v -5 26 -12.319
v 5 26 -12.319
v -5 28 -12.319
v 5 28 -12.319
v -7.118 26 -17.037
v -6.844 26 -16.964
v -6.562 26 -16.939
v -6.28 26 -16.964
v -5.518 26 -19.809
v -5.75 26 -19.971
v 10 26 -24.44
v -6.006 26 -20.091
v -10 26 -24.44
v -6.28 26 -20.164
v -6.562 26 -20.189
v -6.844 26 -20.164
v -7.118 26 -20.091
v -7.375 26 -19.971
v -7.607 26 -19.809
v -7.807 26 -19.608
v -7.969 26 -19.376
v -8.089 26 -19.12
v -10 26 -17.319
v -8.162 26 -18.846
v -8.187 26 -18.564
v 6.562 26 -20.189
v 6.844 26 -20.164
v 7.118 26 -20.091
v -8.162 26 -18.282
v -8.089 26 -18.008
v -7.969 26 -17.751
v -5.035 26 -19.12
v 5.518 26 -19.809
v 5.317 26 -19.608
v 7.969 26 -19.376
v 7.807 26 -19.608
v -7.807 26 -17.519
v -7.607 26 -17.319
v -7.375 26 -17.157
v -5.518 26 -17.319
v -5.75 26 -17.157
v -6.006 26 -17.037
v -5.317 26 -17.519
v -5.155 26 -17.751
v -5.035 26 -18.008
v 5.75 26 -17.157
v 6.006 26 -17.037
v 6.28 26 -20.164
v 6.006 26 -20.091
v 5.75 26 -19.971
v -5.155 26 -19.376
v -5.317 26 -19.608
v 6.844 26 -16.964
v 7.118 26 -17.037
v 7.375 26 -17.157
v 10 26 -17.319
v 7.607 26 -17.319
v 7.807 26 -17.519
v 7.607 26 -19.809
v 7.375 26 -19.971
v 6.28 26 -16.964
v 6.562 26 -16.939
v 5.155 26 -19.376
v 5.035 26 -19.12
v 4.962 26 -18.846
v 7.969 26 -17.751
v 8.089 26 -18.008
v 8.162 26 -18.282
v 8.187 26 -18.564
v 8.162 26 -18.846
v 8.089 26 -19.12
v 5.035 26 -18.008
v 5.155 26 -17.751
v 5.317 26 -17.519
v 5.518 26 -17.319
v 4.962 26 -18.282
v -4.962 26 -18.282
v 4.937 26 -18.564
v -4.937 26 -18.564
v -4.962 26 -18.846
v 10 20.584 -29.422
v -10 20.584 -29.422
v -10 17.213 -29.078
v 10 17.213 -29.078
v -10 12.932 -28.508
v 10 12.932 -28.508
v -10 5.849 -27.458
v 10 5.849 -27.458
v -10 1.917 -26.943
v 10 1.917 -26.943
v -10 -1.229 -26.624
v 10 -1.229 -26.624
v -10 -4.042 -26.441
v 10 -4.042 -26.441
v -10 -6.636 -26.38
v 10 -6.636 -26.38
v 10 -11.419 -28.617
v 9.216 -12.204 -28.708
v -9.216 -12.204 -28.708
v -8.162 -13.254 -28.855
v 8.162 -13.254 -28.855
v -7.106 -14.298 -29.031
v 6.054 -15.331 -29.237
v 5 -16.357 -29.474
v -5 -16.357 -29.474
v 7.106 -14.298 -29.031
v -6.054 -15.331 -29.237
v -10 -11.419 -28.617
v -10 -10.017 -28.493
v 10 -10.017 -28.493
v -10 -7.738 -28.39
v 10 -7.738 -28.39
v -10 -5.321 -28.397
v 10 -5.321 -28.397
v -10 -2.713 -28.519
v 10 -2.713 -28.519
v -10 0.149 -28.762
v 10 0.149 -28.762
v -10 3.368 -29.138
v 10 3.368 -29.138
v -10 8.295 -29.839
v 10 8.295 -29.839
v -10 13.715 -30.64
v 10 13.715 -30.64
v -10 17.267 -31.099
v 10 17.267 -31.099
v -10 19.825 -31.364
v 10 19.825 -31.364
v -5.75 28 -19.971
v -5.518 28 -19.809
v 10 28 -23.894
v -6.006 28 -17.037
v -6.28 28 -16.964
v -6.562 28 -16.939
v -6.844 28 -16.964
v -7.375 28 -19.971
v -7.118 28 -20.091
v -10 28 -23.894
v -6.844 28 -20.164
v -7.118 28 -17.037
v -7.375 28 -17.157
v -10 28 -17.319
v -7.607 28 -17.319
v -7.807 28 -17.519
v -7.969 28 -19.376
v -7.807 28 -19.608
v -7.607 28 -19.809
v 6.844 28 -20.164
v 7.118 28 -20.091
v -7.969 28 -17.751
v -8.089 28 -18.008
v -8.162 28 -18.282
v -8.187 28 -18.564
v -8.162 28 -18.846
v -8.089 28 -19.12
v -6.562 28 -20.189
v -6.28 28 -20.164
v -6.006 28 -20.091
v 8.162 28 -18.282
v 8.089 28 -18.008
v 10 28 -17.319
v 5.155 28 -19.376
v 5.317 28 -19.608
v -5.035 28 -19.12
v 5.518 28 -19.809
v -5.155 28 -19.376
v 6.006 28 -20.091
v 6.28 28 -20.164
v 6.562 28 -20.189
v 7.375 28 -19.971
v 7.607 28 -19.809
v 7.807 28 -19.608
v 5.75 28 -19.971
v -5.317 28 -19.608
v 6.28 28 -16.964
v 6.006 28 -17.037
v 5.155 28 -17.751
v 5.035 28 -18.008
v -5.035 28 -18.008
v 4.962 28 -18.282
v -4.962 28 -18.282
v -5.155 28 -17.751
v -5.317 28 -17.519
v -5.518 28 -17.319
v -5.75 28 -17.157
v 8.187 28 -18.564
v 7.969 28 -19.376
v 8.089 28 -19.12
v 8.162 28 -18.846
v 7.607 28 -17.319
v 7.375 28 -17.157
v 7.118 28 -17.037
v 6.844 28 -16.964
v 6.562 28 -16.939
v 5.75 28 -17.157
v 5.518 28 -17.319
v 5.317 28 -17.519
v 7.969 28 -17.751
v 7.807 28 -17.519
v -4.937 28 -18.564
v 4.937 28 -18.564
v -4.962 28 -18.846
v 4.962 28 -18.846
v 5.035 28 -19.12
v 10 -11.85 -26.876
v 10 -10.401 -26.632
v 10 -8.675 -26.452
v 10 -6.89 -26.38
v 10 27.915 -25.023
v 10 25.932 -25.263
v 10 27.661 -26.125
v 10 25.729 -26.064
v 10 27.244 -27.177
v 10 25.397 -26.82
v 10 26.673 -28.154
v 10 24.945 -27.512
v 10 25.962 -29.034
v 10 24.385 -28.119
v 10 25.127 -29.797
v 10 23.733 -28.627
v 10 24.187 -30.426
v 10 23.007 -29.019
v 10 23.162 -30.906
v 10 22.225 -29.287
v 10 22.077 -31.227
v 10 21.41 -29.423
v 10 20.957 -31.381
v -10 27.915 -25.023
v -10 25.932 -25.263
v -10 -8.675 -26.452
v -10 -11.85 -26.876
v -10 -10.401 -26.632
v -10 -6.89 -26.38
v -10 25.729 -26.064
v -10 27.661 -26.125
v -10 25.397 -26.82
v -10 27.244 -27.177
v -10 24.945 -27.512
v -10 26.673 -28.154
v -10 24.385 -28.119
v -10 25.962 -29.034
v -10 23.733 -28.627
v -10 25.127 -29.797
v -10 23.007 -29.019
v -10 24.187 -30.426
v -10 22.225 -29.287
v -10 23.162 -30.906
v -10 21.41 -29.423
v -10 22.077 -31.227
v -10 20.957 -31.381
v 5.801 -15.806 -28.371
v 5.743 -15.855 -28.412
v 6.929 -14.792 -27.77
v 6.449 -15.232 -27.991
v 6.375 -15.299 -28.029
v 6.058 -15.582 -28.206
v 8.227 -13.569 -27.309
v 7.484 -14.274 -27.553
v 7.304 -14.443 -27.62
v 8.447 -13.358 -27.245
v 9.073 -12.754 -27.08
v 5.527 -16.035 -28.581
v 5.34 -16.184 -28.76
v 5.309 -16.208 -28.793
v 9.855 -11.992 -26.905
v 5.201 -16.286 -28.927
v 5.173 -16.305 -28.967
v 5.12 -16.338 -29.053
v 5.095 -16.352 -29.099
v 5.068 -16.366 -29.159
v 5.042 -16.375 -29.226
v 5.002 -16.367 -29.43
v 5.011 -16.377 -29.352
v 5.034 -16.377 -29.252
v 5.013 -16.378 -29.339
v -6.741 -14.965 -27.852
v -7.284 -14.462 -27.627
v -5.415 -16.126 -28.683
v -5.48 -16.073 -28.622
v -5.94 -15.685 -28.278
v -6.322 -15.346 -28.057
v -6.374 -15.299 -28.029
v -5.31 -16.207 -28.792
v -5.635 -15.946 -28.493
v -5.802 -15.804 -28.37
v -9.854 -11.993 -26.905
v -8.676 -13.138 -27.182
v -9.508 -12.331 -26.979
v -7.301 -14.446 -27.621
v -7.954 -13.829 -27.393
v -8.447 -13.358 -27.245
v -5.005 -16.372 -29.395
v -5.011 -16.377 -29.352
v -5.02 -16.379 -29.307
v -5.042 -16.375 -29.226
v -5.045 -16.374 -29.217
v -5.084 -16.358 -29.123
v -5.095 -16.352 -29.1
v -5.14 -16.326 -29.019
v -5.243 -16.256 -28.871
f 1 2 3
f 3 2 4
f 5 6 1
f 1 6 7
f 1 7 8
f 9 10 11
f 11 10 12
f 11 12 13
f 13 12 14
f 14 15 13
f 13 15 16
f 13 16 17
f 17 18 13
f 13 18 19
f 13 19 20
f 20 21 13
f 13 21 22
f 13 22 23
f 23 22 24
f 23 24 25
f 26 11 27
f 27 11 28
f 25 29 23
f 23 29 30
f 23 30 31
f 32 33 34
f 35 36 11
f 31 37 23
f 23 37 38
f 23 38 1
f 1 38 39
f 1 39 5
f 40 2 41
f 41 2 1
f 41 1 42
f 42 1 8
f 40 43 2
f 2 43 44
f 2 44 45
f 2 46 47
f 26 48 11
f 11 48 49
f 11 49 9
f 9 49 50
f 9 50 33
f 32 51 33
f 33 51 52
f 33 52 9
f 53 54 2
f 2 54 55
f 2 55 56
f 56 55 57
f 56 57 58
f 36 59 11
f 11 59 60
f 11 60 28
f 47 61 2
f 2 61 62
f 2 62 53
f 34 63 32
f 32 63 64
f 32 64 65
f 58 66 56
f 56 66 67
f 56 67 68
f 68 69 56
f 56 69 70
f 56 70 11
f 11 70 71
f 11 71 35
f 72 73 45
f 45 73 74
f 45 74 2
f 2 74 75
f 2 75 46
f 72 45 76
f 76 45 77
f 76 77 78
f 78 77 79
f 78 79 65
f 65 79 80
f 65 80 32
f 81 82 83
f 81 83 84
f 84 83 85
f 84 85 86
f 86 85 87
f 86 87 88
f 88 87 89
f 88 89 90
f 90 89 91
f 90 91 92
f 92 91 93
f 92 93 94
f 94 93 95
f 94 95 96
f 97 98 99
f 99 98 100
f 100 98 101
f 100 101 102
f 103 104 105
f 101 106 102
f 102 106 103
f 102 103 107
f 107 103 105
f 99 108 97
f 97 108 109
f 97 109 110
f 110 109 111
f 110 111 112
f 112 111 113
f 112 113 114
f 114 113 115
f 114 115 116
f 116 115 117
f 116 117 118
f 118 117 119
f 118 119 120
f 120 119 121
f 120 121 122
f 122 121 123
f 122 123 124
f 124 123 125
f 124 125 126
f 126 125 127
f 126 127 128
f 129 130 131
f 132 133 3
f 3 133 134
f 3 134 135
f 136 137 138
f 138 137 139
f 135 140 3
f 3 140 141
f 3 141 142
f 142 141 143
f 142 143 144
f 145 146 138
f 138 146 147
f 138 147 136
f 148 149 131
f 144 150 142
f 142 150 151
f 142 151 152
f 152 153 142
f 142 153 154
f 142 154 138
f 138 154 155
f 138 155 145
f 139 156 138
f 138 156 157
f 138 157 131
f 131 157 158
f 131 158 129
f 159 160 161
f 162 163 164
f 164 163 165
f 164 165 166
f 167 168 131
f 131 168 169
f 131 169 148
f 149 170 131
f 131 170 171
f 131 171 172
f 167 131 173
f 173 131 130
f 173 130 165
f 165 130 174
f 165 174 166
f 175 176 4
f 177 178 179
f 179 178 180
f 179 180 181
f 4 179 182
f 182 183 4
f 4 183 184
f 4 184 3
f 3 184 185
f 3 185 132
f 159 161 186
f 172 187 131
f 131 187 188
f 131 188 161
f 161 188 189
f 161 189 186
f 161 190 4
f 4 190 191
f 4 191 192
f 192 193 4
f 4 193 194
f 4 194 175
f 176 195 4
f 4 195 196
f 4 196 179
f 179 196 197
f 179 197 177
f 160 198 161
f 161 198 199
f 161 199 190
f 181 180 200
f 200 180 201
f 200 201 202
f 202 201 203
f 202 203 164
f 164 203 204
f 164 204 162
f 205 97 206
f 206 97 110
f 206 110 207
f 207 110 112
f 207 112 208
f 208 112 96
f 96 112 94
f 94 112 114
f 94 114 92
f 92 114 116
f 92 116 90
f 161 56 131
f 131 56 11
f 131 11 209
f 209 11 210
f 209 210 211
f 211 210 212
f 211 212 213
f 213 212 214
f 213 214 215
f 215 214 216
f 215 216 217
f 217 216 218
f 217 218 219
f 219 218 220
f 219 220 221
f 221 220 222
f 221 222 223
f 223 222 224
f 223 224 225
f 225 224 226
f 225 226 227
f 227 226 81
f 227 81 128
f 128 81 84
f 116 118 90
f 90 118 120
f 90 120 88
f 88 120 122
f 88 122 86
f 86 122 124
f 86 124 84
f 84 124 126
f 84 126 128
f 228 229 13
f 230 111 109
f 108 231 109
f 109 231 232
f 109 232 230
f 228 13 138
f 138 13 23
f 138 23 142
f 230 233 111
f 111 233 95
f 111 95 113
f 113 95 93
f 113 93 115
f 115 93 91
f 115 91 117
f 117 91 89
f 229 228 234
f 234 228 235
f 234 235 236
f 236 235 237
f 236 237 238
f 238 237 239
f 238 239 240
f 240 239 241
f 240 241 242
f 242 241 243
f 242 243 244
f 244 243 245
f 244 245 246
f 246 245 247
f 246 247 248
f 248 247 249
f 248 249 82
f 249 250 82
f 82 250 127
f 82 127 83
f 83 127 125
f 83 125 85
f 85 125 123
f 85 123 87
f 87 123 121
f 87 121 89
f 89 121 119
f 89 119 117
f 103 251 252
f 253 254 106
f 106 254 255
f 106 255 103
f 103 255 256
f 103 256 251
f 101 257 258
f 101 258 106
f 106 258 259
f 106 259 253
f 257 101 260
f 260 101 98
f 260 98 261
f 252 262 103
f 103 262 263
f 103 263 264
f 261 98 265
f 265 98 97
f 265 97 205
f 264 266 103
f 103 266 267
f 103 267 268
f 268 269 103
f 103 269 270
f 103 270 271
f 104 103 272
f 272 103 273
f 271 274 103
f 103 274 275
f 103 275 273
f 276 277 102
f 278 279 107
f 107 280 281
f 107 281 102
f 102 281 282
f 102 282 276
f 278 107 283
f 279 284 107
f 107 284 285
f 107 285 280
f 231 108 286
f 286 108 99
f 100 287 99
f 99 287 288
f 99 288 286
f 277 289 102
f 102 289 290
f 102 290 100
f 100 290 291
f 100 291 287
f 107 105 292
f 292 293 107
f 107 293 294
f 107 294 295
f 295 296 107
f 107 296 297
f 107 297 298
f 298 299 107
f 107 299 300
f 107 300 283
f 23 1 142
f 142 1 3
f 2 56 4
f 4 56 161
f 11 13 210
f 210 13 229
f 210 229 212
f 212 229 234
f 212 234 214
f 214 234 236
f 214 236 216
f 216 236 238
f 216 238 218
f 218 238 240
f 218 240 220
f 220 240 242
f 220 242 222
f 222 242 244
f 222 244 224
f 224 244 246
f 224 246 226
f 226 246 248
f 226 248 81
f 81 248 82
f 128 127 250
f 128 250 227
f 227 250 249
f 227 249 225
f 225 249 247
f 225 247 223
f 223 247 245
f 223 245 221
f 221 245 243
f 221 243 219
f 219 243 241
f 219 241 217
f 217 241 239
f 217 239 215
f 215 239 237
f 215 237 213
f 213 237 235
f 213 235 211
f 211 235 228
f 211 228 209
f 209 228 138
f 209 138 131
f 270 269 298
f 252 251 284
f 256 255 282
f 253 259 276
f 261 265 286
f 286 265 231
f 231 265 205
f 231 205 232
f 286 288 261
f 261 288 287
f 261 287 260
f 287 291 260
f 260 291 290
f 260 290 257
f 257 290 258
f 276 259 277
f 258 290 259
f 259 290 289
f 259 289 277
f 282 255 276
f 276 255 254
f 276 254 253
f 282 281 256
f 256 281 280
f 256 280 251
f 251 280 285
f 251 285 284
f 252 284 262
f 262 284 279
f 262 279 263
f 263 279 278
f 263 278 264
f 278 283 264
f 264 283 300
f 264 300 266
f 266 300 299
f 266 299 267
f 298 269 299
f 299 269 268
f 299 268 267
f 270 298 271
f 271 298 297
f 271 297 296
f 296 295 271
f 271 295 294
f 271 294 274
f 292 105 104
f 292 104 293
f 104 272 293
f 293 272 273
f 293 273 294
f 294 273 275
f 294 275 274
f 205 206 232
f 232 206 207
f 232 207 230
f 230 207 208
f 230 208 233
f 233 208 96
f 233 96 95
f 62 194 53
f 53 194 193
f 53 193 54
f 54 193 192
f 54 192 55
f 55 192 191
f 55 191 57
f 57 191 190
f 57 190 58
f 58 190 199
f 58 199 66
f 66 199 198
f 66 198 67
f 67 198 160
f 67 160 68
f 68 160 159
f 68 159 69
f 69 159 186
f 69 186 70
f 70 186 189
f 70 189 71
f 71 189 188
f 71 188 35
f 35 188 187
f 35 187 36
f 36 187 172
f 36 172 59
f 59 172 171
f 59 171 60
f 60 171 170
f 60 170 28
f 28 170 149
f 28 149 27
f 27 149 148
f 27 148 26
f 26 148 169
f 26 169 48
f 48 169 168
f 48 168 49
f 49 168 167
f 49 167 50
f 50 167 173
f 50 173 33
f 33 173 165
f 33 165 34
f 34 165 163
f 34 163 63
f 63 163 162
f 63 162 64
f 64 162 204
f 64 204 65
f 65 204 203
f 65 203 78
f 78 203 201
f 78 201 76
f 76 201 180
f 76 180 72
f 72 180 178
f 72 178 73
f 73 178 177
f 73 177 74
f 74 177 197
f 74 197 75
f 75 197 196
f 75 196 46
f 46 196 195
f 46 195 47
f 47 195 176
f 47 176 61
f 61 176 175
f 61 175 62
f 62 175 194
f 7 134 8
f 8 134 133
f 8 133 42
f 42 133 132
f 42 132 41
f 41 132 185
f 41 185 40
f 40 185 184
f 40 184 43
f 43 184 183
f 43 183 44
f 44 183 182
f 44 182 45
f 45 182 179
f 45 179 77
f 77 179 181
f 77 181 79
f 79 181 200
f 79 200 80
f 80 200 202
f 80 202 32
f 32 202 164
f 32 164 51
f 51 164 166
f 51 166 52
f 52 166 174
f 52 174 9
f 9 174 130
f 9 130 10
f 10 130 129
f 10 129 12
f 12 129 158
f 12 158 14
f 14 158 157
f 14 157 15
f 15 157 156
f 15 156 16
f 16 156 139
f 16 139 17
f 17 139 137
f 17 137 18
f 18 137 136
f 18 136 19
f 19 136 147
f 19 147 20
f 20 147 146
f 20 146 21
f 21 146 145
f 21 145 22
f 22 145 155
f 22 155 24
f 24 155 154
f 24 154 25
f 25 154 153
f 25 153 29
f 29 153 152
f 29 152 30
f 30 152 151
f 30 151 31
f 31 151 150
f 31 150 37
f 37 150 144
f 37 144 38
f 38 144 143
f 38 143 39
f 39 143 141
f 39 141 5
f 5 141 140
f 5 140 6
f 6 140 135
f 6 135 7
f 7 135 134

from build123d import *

# Parameters (mm, degrees)
BOSS_EXTRUDE1_DEPTH = 10
CHAMFER1_SIZE       = 5
FILLET1_R           = 5
FILLET2_R           = 7.5
FILLET3_START       = -10
FILLET3_DEPTH       = 20
SKETCH3_R           = 1.625
CUT_EXTRUDE1_DEPTH  = 56.272426005


with BuildPart() as part:
    # Sketch1 → Boss-Extrude1 (new, symmetric)
    with BuildSketch(Plane(origin=(0, 0, 0), x_dir=(0, 0, -1), z_dir=(1, 0, 0))):
        with BuildLine():
            Line((12.319127455, 26), (29.663517642, 26))
            add(Edge.make_bspline(
                [(29.663517642, 26), (29.663517642, 11.740150088), (24.016025287, -2.621570193), (27.532919864, -16.837766109)],
                knots=[0, 0, 0, 0, 1, 1, 1, 1], degree=3))
            Line((27.532919864, -16.837766109), (29.474392891, -16.357471943))
            add(Edge.make_bspline(
                [(31.663517642, 26), (31.663517642, 24.15939465), (31.480704272, 20.46991898), (30.636833768, 13.199740185), (29.144724775, 4.252426008), (28.234715818, -4.480702376), (28.494687407, -11.300478686), (29.06335364, -14.695945165), (29.474392891, -16.357471943)],
                knots=[0, 0, 0, 0, 0.125, 0.25, 0.5, 0.75, 0.875, 1, 1, 1, 1], degree=3))
            Line((31.663517642, 26), (31.663517642, 28))
            Line((31.663517642, 28), (29.663517642, 28))
            Line((29.663517642, 28), (12.319127455, 28))
            Line((12.319127455, 28), (12.319127455, 26))
        make_face()
    extrude(amount=BOSS_EXTRUDE1_DEPTH, both=True)

    # Chamfer1
    chamfer1_edges = [part.edges().sort_by_distance(p)[0] for p in [
        (10, -16.597619026, -28.503656378),
        (-10, -16.597619026, -28.503656378),
        (-10, 27, -12.319127455),
        (10, 27, -12.319127455),
    ]]
    chamfer(chamfer1_edges, length=CHAMFER1_SIZE)

    # Fillet1
    fillet1_edges = [part.edges().sort_by_distance(p)[0] for p in [
        (-5, 26, -29.663517642),
    ]]
    fillet(fillet1_edges, radius=FILLET1_R)

    # Fillet2
    fillet2_edges = [part.edges().sort_by_distance(p)[0] for p in [
        (0, 28, -31.663517642),
    ]]
    fillet(fillet2_edges, radius=FILLET2_R)

    # Fillet3: read off the stored shape, not the designer's step
    # Fillet3 outline → Fillet3 (cut)
    with BuildSketch(Plane.YZ.offset(FILLET3_START)):
        with BuildLine():
            Line((-16.837766109, -27.532919864), (-16.357471943, -29.474392891))
            add(Edge.make_bspline(
                [(-16.357471943, -29.474392891), (-17.106538204, -26.368974262), (-6.635525171, -26.379518895)],
                knots=[0, 0, 0, 1, 1, 1], degree=2, weights=[1, 0.618277336, 1]))
            add(Edge.make_bspline(
                [(-6.635525171, -26.379518895), (-10.042321147, -26.376088146), (-13.444189865, -26.693395004), (-16.837766109, -27.532919864)],
                knots=[0.761288022, 0.761288022, 0.761288022, 0.761288022, 1, 1, 1, 1], degree=3))
        make_face()
    extrude(amount=FILLET3_DEPTH, mode=Mode.SUBTRACT)

    # Sketch3 → Cut-Extrude1 (cut, through all)
    with BuildSketch(Plane(origin=(0, 28, 0), x_dir=(1, 0, 0), z_dir=(0, 1, 0))):
        with Locations(Location((-6.562054303, 18.563874533, 0), (0, 0, 270))):
            Circle(SKETCH3_R)
        with Locations(Location((6.562054303, 18.563874533, 0), (0, 0, 270))):
            Circle(SKETCH3_R)
    extrude(amount=-CUT_EXTRUDE1_DEPTH, mode=Mode.SUBTRACT)


solid = part.part
